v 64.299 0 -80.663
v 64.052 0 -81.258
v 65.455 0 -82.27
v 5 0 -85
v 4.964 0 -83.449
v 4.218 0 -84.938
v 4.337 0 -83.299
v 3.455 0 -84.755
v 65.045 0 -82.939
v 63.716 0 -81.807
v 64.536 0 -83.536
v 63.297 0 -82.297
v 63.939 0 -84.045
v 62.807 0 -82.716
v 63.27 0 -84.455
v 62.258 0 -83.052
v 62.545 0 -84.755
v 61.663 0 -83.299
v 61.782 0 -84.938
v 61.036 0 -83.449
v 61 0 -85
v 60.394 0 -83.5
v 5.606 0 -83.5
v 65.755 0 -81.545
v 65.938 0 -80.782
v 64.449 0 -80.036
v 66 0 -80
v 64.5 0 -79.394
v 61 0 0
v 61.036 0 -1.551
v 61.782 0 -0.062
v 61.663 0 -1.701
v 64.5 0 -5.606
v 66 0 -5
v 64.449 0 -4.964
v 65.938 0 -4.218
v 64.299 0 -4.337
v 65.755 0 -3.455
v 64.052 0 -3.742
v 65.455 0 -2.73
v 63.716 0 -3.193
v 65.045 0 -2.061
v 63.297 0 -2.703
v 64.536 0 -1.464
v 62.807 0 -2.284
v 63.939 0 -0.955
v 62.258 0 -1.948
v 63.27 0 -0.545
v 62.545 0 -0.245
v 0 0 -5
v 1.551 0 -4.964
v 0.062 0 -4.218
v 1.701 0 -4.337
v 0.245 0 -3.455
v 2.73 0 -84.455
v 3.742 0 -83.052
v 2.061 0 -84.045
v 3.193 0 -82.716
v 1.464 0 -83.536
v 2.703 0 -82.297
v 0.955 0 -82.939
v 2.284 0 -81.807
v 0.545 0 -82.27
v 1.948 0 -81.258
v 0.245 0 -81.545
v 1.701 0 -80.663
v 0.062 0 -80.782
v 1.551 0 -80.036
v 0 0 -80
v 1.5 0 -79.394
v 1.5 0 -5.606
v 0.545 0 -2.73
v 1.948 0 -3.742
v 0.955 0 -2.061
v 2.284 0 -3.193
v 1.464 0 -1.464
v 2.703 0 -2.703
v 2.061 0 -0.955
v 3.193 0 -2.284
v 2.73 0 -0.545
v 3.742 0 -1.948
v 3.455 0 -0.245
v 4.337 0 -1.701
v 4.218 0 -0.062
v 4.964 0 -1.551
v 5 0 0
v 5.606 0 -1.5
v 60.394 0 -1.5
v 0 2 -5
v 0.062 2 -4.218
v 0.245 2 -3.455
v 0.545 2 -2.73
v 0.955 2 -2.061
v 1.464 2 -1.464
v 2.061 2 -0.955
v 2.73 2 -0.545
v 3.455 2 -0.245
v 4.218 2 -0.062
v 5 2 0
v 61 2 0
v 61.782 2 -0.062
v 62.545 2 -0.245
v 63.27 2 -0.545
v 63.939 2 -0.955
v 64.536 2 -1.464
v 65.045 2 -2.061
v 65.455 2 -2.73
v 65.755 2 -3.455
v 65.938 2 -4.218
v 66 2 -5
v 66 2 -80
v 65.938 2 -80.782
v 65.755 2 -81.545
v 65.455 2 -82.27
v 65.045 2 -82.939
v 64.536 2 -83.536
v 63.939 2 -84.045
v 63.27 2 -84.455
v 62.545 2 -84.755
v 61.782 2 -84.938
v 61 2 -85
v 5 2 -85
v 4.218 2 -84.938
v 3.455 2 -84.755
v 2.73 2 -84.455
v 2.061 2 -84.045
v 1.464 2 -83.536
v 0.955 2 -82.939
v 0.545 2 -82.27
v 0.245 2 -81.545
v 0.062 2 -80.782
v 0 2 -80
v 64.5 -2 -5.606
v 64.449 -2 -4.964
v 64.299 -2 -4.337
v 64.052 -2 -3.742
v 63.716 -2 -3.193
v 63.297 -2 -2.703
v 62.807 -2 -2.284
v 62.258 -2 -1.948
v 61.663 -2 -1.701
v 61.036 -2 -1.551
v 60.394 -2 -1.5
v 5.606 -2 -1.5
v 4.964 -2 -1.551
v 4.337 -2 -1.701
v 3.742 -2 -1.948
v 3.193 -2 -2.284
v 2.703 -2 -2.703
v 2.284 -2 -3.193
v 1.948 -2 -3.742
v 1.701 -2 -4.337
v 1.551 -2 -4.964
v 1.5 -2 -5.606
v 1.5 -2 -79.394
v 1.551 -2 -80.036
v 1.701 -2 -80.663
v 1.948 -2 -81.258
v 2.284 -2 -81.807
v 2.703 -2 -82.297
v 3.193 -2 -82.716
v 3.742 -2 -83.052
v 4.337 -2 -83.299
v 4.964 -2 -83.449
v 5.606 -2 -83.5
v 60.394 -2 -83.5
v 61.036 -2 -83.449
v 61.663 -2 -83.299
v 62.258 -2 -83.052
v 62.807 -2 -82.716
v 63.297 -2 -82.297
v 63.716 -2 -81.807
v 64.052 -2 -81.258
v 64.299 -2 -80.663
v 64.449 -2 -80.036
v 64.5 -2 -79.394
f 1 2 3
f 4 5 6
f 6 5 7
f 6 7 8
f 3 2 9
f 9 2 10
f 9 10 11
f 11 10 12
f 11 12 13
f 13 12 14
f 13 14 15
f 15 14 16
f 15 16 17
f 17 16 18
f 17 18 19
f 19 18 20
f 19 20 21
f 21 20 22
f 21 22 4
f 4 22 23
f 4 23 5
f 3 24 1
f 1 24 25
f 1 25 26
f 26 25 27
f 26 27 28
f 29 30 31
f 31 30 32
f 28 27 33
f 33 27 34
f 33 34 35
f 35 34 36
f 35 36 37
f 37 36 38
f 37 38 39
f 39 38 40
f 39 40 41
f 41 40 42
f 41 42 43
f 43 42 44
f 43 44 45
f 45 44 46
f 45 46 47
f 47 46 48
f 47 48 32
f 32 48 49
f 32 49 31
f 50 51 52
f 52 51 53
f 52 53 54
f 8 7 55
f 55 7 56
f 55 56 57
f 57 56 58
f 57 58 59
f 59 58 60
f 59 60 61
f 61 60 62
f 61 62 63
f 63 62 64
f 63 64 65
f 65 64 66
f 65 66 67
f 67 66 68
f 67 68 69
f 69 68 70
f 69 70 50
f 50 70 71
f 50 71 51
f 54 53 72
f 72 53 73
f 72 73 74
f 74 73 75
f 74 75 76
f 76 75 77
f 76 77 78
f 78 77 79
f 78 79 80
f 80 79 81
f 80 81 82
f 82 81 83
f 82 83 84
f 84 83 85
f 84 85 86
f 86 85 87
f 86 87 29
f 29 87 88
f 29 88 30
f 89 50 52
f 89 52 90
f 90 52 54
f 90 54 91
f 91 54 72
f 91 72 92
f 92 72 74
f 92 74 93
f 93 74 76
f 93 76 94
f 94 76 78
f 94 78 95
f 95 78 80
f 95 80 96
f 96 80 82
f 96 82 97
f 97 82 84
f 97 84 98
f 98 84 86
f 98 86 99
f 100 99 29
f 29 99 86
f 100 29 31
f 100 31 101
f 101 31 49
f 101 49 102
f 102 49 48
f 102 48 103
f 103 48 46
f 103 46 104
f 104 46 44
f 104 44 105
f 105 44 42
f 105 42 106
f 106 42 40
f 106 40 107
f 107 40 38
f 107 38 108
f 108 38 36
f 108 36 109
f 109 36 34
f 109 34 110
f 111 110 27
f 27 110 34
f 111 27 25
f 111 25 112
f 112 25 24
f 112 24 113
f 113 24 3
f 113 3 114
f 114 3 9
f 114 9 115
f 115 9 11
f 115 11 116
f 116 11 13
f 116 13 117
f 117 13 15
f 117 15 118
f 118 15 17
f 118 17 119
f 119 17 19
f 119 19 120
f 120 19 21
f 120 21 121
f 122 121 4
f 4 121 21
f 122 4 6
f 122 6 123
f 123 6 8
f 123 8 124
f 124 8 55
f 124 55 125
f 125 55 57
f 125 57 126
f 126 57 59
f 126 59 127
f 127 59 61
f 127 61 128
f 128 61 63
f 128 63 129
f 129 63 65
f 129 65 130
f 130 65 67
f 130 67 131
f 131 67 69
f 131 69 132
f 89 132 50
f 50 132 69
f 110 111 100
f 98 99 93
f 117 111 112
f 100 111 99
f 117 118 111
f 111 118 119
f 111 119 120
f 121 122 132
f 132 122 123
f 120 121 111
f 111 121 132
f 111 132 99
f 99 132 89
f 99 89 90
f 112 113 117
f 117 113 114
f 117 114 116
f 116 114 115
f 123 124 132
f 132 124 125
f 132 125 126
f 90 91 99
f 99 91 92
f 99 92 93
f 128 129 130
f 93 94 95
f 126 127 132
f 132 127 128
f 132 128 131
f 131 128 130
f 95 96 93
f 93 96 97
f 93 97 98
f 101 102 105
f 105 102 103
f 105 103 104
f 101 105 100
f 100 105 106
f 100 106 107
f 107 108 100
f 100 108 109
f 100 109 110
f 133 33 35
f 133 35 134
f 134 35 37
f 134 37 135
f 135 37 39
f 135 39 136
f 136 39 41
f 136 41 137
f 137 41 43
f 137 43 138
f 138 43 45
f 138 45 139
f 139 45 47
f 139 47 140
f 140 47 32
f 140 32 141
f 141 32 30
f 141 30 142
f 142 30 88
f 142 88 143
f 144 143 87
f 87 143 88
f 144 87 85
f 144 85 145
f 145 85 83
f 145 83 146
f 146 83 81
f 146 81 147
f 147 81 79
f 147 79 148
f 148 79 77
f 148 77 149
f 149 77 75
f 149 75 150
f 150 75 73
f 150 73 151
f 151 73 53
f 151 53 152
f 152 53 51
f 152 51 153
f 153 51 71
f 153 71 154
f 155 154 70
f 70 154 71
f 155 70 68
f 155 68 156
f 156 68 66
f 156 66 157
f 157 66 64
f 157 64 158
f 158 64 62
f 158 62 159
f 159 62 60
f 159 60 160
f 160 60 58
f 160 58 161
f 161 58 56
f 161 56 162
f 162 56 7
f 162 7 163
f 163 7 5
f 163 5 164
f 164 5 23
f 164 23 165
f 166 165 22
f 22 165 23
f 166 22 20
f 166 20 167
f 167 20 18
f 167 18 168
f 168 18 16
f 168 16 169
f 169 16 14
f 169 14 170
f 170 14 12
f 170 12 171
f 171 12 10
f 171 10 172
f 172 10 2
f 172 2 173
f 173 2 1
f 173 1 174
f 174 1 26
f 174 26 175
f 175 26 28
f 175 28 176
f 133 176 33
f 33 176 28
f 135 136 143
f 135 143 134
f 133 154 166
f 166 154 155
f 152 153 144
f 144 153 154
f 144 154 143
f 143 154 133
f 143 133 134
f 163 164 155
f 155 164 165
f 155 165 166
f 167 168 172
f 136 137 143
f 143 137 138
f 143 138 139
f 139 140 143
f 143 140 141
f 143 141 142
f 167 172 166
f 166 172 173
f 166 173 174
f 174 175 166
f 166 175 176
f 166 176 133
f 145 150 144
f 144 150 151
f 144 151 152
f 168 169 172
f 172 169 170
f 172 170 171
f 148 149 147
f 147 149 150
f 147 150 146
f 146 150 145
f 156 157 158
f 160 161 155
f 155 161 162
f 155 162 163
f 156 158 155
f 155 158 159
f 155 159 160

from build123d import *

# Parameters (mm, degrees)
ESTRUSIONE_ESTRUSIONE1_DEPTH = 2
ESTRUSIONE_ESTRUSIONE2_DEPTH = 2


with BuildPart() as part:
    # Schizzo1 → Estrusione-Estrusione1 (new body)
    with BuildSketch(Plane(origin=(0, 0, 0), x_dir=(1, 0, 0), z_dir=(0, 1, 0))):
        with BuildLine():
            Line((5, 0), (61, 0))
            ThreePointArc((61, 0), (64.535533906, 1.464466094), (66, 5))
            Line((66, 5), (66, 80))
            ThreePointArc((66, 80), (64.535533906, 83.535533906), (61, 85))
            Line((61, 85), (5, 85))
            ThreePointArc((5, 85), (1.464466094, 83.535533906), (0, 80))
            Line((0, 80), (0, 5))
            ThreePointArc((0, 5), (1.464466094, 1.464466094), (5, 0))
        make_face()
    extrude(amount=ESTRUSIONE_ESTRUSIONE1_DEPTH)

    # Schizzo2 → Estrusione-Estrusione2 (add)
    with BuildSketch(Plane.XZ):
        with BuildLine():
            Line((60.393923704, -83.5), (5.606076296, -83.5))
            ThreePointArc((5.606076296, -83.5), (2.702641903, -82.297358097), (1.5, -79.393923704))
            Line((1.5, -79.393923704), (1.5, -5.606076296))
            ThreePointArc((1.5, -5.606076296), (2.702641903, -2.702641903), (5.606076296, -1.5))
            Line((5.606076296, -1.5), (60.393923704, -1.5))
            ThreePointArc((60.393923704, -1.5), (63.297358097, -2.702641903), (64.5, -5.606076296))
            Line((64.5, -5.606076296), (64.5, -79.393923704))
            ThreePointArc((64.5, -79.393923704), (63.297358097, -82.297358097), (60.393923704, -83.5))
        make_face()
    extrude(amount=ESTRUSIONE_ESTRUSIONE2_DEPTH)


solid = part.part
